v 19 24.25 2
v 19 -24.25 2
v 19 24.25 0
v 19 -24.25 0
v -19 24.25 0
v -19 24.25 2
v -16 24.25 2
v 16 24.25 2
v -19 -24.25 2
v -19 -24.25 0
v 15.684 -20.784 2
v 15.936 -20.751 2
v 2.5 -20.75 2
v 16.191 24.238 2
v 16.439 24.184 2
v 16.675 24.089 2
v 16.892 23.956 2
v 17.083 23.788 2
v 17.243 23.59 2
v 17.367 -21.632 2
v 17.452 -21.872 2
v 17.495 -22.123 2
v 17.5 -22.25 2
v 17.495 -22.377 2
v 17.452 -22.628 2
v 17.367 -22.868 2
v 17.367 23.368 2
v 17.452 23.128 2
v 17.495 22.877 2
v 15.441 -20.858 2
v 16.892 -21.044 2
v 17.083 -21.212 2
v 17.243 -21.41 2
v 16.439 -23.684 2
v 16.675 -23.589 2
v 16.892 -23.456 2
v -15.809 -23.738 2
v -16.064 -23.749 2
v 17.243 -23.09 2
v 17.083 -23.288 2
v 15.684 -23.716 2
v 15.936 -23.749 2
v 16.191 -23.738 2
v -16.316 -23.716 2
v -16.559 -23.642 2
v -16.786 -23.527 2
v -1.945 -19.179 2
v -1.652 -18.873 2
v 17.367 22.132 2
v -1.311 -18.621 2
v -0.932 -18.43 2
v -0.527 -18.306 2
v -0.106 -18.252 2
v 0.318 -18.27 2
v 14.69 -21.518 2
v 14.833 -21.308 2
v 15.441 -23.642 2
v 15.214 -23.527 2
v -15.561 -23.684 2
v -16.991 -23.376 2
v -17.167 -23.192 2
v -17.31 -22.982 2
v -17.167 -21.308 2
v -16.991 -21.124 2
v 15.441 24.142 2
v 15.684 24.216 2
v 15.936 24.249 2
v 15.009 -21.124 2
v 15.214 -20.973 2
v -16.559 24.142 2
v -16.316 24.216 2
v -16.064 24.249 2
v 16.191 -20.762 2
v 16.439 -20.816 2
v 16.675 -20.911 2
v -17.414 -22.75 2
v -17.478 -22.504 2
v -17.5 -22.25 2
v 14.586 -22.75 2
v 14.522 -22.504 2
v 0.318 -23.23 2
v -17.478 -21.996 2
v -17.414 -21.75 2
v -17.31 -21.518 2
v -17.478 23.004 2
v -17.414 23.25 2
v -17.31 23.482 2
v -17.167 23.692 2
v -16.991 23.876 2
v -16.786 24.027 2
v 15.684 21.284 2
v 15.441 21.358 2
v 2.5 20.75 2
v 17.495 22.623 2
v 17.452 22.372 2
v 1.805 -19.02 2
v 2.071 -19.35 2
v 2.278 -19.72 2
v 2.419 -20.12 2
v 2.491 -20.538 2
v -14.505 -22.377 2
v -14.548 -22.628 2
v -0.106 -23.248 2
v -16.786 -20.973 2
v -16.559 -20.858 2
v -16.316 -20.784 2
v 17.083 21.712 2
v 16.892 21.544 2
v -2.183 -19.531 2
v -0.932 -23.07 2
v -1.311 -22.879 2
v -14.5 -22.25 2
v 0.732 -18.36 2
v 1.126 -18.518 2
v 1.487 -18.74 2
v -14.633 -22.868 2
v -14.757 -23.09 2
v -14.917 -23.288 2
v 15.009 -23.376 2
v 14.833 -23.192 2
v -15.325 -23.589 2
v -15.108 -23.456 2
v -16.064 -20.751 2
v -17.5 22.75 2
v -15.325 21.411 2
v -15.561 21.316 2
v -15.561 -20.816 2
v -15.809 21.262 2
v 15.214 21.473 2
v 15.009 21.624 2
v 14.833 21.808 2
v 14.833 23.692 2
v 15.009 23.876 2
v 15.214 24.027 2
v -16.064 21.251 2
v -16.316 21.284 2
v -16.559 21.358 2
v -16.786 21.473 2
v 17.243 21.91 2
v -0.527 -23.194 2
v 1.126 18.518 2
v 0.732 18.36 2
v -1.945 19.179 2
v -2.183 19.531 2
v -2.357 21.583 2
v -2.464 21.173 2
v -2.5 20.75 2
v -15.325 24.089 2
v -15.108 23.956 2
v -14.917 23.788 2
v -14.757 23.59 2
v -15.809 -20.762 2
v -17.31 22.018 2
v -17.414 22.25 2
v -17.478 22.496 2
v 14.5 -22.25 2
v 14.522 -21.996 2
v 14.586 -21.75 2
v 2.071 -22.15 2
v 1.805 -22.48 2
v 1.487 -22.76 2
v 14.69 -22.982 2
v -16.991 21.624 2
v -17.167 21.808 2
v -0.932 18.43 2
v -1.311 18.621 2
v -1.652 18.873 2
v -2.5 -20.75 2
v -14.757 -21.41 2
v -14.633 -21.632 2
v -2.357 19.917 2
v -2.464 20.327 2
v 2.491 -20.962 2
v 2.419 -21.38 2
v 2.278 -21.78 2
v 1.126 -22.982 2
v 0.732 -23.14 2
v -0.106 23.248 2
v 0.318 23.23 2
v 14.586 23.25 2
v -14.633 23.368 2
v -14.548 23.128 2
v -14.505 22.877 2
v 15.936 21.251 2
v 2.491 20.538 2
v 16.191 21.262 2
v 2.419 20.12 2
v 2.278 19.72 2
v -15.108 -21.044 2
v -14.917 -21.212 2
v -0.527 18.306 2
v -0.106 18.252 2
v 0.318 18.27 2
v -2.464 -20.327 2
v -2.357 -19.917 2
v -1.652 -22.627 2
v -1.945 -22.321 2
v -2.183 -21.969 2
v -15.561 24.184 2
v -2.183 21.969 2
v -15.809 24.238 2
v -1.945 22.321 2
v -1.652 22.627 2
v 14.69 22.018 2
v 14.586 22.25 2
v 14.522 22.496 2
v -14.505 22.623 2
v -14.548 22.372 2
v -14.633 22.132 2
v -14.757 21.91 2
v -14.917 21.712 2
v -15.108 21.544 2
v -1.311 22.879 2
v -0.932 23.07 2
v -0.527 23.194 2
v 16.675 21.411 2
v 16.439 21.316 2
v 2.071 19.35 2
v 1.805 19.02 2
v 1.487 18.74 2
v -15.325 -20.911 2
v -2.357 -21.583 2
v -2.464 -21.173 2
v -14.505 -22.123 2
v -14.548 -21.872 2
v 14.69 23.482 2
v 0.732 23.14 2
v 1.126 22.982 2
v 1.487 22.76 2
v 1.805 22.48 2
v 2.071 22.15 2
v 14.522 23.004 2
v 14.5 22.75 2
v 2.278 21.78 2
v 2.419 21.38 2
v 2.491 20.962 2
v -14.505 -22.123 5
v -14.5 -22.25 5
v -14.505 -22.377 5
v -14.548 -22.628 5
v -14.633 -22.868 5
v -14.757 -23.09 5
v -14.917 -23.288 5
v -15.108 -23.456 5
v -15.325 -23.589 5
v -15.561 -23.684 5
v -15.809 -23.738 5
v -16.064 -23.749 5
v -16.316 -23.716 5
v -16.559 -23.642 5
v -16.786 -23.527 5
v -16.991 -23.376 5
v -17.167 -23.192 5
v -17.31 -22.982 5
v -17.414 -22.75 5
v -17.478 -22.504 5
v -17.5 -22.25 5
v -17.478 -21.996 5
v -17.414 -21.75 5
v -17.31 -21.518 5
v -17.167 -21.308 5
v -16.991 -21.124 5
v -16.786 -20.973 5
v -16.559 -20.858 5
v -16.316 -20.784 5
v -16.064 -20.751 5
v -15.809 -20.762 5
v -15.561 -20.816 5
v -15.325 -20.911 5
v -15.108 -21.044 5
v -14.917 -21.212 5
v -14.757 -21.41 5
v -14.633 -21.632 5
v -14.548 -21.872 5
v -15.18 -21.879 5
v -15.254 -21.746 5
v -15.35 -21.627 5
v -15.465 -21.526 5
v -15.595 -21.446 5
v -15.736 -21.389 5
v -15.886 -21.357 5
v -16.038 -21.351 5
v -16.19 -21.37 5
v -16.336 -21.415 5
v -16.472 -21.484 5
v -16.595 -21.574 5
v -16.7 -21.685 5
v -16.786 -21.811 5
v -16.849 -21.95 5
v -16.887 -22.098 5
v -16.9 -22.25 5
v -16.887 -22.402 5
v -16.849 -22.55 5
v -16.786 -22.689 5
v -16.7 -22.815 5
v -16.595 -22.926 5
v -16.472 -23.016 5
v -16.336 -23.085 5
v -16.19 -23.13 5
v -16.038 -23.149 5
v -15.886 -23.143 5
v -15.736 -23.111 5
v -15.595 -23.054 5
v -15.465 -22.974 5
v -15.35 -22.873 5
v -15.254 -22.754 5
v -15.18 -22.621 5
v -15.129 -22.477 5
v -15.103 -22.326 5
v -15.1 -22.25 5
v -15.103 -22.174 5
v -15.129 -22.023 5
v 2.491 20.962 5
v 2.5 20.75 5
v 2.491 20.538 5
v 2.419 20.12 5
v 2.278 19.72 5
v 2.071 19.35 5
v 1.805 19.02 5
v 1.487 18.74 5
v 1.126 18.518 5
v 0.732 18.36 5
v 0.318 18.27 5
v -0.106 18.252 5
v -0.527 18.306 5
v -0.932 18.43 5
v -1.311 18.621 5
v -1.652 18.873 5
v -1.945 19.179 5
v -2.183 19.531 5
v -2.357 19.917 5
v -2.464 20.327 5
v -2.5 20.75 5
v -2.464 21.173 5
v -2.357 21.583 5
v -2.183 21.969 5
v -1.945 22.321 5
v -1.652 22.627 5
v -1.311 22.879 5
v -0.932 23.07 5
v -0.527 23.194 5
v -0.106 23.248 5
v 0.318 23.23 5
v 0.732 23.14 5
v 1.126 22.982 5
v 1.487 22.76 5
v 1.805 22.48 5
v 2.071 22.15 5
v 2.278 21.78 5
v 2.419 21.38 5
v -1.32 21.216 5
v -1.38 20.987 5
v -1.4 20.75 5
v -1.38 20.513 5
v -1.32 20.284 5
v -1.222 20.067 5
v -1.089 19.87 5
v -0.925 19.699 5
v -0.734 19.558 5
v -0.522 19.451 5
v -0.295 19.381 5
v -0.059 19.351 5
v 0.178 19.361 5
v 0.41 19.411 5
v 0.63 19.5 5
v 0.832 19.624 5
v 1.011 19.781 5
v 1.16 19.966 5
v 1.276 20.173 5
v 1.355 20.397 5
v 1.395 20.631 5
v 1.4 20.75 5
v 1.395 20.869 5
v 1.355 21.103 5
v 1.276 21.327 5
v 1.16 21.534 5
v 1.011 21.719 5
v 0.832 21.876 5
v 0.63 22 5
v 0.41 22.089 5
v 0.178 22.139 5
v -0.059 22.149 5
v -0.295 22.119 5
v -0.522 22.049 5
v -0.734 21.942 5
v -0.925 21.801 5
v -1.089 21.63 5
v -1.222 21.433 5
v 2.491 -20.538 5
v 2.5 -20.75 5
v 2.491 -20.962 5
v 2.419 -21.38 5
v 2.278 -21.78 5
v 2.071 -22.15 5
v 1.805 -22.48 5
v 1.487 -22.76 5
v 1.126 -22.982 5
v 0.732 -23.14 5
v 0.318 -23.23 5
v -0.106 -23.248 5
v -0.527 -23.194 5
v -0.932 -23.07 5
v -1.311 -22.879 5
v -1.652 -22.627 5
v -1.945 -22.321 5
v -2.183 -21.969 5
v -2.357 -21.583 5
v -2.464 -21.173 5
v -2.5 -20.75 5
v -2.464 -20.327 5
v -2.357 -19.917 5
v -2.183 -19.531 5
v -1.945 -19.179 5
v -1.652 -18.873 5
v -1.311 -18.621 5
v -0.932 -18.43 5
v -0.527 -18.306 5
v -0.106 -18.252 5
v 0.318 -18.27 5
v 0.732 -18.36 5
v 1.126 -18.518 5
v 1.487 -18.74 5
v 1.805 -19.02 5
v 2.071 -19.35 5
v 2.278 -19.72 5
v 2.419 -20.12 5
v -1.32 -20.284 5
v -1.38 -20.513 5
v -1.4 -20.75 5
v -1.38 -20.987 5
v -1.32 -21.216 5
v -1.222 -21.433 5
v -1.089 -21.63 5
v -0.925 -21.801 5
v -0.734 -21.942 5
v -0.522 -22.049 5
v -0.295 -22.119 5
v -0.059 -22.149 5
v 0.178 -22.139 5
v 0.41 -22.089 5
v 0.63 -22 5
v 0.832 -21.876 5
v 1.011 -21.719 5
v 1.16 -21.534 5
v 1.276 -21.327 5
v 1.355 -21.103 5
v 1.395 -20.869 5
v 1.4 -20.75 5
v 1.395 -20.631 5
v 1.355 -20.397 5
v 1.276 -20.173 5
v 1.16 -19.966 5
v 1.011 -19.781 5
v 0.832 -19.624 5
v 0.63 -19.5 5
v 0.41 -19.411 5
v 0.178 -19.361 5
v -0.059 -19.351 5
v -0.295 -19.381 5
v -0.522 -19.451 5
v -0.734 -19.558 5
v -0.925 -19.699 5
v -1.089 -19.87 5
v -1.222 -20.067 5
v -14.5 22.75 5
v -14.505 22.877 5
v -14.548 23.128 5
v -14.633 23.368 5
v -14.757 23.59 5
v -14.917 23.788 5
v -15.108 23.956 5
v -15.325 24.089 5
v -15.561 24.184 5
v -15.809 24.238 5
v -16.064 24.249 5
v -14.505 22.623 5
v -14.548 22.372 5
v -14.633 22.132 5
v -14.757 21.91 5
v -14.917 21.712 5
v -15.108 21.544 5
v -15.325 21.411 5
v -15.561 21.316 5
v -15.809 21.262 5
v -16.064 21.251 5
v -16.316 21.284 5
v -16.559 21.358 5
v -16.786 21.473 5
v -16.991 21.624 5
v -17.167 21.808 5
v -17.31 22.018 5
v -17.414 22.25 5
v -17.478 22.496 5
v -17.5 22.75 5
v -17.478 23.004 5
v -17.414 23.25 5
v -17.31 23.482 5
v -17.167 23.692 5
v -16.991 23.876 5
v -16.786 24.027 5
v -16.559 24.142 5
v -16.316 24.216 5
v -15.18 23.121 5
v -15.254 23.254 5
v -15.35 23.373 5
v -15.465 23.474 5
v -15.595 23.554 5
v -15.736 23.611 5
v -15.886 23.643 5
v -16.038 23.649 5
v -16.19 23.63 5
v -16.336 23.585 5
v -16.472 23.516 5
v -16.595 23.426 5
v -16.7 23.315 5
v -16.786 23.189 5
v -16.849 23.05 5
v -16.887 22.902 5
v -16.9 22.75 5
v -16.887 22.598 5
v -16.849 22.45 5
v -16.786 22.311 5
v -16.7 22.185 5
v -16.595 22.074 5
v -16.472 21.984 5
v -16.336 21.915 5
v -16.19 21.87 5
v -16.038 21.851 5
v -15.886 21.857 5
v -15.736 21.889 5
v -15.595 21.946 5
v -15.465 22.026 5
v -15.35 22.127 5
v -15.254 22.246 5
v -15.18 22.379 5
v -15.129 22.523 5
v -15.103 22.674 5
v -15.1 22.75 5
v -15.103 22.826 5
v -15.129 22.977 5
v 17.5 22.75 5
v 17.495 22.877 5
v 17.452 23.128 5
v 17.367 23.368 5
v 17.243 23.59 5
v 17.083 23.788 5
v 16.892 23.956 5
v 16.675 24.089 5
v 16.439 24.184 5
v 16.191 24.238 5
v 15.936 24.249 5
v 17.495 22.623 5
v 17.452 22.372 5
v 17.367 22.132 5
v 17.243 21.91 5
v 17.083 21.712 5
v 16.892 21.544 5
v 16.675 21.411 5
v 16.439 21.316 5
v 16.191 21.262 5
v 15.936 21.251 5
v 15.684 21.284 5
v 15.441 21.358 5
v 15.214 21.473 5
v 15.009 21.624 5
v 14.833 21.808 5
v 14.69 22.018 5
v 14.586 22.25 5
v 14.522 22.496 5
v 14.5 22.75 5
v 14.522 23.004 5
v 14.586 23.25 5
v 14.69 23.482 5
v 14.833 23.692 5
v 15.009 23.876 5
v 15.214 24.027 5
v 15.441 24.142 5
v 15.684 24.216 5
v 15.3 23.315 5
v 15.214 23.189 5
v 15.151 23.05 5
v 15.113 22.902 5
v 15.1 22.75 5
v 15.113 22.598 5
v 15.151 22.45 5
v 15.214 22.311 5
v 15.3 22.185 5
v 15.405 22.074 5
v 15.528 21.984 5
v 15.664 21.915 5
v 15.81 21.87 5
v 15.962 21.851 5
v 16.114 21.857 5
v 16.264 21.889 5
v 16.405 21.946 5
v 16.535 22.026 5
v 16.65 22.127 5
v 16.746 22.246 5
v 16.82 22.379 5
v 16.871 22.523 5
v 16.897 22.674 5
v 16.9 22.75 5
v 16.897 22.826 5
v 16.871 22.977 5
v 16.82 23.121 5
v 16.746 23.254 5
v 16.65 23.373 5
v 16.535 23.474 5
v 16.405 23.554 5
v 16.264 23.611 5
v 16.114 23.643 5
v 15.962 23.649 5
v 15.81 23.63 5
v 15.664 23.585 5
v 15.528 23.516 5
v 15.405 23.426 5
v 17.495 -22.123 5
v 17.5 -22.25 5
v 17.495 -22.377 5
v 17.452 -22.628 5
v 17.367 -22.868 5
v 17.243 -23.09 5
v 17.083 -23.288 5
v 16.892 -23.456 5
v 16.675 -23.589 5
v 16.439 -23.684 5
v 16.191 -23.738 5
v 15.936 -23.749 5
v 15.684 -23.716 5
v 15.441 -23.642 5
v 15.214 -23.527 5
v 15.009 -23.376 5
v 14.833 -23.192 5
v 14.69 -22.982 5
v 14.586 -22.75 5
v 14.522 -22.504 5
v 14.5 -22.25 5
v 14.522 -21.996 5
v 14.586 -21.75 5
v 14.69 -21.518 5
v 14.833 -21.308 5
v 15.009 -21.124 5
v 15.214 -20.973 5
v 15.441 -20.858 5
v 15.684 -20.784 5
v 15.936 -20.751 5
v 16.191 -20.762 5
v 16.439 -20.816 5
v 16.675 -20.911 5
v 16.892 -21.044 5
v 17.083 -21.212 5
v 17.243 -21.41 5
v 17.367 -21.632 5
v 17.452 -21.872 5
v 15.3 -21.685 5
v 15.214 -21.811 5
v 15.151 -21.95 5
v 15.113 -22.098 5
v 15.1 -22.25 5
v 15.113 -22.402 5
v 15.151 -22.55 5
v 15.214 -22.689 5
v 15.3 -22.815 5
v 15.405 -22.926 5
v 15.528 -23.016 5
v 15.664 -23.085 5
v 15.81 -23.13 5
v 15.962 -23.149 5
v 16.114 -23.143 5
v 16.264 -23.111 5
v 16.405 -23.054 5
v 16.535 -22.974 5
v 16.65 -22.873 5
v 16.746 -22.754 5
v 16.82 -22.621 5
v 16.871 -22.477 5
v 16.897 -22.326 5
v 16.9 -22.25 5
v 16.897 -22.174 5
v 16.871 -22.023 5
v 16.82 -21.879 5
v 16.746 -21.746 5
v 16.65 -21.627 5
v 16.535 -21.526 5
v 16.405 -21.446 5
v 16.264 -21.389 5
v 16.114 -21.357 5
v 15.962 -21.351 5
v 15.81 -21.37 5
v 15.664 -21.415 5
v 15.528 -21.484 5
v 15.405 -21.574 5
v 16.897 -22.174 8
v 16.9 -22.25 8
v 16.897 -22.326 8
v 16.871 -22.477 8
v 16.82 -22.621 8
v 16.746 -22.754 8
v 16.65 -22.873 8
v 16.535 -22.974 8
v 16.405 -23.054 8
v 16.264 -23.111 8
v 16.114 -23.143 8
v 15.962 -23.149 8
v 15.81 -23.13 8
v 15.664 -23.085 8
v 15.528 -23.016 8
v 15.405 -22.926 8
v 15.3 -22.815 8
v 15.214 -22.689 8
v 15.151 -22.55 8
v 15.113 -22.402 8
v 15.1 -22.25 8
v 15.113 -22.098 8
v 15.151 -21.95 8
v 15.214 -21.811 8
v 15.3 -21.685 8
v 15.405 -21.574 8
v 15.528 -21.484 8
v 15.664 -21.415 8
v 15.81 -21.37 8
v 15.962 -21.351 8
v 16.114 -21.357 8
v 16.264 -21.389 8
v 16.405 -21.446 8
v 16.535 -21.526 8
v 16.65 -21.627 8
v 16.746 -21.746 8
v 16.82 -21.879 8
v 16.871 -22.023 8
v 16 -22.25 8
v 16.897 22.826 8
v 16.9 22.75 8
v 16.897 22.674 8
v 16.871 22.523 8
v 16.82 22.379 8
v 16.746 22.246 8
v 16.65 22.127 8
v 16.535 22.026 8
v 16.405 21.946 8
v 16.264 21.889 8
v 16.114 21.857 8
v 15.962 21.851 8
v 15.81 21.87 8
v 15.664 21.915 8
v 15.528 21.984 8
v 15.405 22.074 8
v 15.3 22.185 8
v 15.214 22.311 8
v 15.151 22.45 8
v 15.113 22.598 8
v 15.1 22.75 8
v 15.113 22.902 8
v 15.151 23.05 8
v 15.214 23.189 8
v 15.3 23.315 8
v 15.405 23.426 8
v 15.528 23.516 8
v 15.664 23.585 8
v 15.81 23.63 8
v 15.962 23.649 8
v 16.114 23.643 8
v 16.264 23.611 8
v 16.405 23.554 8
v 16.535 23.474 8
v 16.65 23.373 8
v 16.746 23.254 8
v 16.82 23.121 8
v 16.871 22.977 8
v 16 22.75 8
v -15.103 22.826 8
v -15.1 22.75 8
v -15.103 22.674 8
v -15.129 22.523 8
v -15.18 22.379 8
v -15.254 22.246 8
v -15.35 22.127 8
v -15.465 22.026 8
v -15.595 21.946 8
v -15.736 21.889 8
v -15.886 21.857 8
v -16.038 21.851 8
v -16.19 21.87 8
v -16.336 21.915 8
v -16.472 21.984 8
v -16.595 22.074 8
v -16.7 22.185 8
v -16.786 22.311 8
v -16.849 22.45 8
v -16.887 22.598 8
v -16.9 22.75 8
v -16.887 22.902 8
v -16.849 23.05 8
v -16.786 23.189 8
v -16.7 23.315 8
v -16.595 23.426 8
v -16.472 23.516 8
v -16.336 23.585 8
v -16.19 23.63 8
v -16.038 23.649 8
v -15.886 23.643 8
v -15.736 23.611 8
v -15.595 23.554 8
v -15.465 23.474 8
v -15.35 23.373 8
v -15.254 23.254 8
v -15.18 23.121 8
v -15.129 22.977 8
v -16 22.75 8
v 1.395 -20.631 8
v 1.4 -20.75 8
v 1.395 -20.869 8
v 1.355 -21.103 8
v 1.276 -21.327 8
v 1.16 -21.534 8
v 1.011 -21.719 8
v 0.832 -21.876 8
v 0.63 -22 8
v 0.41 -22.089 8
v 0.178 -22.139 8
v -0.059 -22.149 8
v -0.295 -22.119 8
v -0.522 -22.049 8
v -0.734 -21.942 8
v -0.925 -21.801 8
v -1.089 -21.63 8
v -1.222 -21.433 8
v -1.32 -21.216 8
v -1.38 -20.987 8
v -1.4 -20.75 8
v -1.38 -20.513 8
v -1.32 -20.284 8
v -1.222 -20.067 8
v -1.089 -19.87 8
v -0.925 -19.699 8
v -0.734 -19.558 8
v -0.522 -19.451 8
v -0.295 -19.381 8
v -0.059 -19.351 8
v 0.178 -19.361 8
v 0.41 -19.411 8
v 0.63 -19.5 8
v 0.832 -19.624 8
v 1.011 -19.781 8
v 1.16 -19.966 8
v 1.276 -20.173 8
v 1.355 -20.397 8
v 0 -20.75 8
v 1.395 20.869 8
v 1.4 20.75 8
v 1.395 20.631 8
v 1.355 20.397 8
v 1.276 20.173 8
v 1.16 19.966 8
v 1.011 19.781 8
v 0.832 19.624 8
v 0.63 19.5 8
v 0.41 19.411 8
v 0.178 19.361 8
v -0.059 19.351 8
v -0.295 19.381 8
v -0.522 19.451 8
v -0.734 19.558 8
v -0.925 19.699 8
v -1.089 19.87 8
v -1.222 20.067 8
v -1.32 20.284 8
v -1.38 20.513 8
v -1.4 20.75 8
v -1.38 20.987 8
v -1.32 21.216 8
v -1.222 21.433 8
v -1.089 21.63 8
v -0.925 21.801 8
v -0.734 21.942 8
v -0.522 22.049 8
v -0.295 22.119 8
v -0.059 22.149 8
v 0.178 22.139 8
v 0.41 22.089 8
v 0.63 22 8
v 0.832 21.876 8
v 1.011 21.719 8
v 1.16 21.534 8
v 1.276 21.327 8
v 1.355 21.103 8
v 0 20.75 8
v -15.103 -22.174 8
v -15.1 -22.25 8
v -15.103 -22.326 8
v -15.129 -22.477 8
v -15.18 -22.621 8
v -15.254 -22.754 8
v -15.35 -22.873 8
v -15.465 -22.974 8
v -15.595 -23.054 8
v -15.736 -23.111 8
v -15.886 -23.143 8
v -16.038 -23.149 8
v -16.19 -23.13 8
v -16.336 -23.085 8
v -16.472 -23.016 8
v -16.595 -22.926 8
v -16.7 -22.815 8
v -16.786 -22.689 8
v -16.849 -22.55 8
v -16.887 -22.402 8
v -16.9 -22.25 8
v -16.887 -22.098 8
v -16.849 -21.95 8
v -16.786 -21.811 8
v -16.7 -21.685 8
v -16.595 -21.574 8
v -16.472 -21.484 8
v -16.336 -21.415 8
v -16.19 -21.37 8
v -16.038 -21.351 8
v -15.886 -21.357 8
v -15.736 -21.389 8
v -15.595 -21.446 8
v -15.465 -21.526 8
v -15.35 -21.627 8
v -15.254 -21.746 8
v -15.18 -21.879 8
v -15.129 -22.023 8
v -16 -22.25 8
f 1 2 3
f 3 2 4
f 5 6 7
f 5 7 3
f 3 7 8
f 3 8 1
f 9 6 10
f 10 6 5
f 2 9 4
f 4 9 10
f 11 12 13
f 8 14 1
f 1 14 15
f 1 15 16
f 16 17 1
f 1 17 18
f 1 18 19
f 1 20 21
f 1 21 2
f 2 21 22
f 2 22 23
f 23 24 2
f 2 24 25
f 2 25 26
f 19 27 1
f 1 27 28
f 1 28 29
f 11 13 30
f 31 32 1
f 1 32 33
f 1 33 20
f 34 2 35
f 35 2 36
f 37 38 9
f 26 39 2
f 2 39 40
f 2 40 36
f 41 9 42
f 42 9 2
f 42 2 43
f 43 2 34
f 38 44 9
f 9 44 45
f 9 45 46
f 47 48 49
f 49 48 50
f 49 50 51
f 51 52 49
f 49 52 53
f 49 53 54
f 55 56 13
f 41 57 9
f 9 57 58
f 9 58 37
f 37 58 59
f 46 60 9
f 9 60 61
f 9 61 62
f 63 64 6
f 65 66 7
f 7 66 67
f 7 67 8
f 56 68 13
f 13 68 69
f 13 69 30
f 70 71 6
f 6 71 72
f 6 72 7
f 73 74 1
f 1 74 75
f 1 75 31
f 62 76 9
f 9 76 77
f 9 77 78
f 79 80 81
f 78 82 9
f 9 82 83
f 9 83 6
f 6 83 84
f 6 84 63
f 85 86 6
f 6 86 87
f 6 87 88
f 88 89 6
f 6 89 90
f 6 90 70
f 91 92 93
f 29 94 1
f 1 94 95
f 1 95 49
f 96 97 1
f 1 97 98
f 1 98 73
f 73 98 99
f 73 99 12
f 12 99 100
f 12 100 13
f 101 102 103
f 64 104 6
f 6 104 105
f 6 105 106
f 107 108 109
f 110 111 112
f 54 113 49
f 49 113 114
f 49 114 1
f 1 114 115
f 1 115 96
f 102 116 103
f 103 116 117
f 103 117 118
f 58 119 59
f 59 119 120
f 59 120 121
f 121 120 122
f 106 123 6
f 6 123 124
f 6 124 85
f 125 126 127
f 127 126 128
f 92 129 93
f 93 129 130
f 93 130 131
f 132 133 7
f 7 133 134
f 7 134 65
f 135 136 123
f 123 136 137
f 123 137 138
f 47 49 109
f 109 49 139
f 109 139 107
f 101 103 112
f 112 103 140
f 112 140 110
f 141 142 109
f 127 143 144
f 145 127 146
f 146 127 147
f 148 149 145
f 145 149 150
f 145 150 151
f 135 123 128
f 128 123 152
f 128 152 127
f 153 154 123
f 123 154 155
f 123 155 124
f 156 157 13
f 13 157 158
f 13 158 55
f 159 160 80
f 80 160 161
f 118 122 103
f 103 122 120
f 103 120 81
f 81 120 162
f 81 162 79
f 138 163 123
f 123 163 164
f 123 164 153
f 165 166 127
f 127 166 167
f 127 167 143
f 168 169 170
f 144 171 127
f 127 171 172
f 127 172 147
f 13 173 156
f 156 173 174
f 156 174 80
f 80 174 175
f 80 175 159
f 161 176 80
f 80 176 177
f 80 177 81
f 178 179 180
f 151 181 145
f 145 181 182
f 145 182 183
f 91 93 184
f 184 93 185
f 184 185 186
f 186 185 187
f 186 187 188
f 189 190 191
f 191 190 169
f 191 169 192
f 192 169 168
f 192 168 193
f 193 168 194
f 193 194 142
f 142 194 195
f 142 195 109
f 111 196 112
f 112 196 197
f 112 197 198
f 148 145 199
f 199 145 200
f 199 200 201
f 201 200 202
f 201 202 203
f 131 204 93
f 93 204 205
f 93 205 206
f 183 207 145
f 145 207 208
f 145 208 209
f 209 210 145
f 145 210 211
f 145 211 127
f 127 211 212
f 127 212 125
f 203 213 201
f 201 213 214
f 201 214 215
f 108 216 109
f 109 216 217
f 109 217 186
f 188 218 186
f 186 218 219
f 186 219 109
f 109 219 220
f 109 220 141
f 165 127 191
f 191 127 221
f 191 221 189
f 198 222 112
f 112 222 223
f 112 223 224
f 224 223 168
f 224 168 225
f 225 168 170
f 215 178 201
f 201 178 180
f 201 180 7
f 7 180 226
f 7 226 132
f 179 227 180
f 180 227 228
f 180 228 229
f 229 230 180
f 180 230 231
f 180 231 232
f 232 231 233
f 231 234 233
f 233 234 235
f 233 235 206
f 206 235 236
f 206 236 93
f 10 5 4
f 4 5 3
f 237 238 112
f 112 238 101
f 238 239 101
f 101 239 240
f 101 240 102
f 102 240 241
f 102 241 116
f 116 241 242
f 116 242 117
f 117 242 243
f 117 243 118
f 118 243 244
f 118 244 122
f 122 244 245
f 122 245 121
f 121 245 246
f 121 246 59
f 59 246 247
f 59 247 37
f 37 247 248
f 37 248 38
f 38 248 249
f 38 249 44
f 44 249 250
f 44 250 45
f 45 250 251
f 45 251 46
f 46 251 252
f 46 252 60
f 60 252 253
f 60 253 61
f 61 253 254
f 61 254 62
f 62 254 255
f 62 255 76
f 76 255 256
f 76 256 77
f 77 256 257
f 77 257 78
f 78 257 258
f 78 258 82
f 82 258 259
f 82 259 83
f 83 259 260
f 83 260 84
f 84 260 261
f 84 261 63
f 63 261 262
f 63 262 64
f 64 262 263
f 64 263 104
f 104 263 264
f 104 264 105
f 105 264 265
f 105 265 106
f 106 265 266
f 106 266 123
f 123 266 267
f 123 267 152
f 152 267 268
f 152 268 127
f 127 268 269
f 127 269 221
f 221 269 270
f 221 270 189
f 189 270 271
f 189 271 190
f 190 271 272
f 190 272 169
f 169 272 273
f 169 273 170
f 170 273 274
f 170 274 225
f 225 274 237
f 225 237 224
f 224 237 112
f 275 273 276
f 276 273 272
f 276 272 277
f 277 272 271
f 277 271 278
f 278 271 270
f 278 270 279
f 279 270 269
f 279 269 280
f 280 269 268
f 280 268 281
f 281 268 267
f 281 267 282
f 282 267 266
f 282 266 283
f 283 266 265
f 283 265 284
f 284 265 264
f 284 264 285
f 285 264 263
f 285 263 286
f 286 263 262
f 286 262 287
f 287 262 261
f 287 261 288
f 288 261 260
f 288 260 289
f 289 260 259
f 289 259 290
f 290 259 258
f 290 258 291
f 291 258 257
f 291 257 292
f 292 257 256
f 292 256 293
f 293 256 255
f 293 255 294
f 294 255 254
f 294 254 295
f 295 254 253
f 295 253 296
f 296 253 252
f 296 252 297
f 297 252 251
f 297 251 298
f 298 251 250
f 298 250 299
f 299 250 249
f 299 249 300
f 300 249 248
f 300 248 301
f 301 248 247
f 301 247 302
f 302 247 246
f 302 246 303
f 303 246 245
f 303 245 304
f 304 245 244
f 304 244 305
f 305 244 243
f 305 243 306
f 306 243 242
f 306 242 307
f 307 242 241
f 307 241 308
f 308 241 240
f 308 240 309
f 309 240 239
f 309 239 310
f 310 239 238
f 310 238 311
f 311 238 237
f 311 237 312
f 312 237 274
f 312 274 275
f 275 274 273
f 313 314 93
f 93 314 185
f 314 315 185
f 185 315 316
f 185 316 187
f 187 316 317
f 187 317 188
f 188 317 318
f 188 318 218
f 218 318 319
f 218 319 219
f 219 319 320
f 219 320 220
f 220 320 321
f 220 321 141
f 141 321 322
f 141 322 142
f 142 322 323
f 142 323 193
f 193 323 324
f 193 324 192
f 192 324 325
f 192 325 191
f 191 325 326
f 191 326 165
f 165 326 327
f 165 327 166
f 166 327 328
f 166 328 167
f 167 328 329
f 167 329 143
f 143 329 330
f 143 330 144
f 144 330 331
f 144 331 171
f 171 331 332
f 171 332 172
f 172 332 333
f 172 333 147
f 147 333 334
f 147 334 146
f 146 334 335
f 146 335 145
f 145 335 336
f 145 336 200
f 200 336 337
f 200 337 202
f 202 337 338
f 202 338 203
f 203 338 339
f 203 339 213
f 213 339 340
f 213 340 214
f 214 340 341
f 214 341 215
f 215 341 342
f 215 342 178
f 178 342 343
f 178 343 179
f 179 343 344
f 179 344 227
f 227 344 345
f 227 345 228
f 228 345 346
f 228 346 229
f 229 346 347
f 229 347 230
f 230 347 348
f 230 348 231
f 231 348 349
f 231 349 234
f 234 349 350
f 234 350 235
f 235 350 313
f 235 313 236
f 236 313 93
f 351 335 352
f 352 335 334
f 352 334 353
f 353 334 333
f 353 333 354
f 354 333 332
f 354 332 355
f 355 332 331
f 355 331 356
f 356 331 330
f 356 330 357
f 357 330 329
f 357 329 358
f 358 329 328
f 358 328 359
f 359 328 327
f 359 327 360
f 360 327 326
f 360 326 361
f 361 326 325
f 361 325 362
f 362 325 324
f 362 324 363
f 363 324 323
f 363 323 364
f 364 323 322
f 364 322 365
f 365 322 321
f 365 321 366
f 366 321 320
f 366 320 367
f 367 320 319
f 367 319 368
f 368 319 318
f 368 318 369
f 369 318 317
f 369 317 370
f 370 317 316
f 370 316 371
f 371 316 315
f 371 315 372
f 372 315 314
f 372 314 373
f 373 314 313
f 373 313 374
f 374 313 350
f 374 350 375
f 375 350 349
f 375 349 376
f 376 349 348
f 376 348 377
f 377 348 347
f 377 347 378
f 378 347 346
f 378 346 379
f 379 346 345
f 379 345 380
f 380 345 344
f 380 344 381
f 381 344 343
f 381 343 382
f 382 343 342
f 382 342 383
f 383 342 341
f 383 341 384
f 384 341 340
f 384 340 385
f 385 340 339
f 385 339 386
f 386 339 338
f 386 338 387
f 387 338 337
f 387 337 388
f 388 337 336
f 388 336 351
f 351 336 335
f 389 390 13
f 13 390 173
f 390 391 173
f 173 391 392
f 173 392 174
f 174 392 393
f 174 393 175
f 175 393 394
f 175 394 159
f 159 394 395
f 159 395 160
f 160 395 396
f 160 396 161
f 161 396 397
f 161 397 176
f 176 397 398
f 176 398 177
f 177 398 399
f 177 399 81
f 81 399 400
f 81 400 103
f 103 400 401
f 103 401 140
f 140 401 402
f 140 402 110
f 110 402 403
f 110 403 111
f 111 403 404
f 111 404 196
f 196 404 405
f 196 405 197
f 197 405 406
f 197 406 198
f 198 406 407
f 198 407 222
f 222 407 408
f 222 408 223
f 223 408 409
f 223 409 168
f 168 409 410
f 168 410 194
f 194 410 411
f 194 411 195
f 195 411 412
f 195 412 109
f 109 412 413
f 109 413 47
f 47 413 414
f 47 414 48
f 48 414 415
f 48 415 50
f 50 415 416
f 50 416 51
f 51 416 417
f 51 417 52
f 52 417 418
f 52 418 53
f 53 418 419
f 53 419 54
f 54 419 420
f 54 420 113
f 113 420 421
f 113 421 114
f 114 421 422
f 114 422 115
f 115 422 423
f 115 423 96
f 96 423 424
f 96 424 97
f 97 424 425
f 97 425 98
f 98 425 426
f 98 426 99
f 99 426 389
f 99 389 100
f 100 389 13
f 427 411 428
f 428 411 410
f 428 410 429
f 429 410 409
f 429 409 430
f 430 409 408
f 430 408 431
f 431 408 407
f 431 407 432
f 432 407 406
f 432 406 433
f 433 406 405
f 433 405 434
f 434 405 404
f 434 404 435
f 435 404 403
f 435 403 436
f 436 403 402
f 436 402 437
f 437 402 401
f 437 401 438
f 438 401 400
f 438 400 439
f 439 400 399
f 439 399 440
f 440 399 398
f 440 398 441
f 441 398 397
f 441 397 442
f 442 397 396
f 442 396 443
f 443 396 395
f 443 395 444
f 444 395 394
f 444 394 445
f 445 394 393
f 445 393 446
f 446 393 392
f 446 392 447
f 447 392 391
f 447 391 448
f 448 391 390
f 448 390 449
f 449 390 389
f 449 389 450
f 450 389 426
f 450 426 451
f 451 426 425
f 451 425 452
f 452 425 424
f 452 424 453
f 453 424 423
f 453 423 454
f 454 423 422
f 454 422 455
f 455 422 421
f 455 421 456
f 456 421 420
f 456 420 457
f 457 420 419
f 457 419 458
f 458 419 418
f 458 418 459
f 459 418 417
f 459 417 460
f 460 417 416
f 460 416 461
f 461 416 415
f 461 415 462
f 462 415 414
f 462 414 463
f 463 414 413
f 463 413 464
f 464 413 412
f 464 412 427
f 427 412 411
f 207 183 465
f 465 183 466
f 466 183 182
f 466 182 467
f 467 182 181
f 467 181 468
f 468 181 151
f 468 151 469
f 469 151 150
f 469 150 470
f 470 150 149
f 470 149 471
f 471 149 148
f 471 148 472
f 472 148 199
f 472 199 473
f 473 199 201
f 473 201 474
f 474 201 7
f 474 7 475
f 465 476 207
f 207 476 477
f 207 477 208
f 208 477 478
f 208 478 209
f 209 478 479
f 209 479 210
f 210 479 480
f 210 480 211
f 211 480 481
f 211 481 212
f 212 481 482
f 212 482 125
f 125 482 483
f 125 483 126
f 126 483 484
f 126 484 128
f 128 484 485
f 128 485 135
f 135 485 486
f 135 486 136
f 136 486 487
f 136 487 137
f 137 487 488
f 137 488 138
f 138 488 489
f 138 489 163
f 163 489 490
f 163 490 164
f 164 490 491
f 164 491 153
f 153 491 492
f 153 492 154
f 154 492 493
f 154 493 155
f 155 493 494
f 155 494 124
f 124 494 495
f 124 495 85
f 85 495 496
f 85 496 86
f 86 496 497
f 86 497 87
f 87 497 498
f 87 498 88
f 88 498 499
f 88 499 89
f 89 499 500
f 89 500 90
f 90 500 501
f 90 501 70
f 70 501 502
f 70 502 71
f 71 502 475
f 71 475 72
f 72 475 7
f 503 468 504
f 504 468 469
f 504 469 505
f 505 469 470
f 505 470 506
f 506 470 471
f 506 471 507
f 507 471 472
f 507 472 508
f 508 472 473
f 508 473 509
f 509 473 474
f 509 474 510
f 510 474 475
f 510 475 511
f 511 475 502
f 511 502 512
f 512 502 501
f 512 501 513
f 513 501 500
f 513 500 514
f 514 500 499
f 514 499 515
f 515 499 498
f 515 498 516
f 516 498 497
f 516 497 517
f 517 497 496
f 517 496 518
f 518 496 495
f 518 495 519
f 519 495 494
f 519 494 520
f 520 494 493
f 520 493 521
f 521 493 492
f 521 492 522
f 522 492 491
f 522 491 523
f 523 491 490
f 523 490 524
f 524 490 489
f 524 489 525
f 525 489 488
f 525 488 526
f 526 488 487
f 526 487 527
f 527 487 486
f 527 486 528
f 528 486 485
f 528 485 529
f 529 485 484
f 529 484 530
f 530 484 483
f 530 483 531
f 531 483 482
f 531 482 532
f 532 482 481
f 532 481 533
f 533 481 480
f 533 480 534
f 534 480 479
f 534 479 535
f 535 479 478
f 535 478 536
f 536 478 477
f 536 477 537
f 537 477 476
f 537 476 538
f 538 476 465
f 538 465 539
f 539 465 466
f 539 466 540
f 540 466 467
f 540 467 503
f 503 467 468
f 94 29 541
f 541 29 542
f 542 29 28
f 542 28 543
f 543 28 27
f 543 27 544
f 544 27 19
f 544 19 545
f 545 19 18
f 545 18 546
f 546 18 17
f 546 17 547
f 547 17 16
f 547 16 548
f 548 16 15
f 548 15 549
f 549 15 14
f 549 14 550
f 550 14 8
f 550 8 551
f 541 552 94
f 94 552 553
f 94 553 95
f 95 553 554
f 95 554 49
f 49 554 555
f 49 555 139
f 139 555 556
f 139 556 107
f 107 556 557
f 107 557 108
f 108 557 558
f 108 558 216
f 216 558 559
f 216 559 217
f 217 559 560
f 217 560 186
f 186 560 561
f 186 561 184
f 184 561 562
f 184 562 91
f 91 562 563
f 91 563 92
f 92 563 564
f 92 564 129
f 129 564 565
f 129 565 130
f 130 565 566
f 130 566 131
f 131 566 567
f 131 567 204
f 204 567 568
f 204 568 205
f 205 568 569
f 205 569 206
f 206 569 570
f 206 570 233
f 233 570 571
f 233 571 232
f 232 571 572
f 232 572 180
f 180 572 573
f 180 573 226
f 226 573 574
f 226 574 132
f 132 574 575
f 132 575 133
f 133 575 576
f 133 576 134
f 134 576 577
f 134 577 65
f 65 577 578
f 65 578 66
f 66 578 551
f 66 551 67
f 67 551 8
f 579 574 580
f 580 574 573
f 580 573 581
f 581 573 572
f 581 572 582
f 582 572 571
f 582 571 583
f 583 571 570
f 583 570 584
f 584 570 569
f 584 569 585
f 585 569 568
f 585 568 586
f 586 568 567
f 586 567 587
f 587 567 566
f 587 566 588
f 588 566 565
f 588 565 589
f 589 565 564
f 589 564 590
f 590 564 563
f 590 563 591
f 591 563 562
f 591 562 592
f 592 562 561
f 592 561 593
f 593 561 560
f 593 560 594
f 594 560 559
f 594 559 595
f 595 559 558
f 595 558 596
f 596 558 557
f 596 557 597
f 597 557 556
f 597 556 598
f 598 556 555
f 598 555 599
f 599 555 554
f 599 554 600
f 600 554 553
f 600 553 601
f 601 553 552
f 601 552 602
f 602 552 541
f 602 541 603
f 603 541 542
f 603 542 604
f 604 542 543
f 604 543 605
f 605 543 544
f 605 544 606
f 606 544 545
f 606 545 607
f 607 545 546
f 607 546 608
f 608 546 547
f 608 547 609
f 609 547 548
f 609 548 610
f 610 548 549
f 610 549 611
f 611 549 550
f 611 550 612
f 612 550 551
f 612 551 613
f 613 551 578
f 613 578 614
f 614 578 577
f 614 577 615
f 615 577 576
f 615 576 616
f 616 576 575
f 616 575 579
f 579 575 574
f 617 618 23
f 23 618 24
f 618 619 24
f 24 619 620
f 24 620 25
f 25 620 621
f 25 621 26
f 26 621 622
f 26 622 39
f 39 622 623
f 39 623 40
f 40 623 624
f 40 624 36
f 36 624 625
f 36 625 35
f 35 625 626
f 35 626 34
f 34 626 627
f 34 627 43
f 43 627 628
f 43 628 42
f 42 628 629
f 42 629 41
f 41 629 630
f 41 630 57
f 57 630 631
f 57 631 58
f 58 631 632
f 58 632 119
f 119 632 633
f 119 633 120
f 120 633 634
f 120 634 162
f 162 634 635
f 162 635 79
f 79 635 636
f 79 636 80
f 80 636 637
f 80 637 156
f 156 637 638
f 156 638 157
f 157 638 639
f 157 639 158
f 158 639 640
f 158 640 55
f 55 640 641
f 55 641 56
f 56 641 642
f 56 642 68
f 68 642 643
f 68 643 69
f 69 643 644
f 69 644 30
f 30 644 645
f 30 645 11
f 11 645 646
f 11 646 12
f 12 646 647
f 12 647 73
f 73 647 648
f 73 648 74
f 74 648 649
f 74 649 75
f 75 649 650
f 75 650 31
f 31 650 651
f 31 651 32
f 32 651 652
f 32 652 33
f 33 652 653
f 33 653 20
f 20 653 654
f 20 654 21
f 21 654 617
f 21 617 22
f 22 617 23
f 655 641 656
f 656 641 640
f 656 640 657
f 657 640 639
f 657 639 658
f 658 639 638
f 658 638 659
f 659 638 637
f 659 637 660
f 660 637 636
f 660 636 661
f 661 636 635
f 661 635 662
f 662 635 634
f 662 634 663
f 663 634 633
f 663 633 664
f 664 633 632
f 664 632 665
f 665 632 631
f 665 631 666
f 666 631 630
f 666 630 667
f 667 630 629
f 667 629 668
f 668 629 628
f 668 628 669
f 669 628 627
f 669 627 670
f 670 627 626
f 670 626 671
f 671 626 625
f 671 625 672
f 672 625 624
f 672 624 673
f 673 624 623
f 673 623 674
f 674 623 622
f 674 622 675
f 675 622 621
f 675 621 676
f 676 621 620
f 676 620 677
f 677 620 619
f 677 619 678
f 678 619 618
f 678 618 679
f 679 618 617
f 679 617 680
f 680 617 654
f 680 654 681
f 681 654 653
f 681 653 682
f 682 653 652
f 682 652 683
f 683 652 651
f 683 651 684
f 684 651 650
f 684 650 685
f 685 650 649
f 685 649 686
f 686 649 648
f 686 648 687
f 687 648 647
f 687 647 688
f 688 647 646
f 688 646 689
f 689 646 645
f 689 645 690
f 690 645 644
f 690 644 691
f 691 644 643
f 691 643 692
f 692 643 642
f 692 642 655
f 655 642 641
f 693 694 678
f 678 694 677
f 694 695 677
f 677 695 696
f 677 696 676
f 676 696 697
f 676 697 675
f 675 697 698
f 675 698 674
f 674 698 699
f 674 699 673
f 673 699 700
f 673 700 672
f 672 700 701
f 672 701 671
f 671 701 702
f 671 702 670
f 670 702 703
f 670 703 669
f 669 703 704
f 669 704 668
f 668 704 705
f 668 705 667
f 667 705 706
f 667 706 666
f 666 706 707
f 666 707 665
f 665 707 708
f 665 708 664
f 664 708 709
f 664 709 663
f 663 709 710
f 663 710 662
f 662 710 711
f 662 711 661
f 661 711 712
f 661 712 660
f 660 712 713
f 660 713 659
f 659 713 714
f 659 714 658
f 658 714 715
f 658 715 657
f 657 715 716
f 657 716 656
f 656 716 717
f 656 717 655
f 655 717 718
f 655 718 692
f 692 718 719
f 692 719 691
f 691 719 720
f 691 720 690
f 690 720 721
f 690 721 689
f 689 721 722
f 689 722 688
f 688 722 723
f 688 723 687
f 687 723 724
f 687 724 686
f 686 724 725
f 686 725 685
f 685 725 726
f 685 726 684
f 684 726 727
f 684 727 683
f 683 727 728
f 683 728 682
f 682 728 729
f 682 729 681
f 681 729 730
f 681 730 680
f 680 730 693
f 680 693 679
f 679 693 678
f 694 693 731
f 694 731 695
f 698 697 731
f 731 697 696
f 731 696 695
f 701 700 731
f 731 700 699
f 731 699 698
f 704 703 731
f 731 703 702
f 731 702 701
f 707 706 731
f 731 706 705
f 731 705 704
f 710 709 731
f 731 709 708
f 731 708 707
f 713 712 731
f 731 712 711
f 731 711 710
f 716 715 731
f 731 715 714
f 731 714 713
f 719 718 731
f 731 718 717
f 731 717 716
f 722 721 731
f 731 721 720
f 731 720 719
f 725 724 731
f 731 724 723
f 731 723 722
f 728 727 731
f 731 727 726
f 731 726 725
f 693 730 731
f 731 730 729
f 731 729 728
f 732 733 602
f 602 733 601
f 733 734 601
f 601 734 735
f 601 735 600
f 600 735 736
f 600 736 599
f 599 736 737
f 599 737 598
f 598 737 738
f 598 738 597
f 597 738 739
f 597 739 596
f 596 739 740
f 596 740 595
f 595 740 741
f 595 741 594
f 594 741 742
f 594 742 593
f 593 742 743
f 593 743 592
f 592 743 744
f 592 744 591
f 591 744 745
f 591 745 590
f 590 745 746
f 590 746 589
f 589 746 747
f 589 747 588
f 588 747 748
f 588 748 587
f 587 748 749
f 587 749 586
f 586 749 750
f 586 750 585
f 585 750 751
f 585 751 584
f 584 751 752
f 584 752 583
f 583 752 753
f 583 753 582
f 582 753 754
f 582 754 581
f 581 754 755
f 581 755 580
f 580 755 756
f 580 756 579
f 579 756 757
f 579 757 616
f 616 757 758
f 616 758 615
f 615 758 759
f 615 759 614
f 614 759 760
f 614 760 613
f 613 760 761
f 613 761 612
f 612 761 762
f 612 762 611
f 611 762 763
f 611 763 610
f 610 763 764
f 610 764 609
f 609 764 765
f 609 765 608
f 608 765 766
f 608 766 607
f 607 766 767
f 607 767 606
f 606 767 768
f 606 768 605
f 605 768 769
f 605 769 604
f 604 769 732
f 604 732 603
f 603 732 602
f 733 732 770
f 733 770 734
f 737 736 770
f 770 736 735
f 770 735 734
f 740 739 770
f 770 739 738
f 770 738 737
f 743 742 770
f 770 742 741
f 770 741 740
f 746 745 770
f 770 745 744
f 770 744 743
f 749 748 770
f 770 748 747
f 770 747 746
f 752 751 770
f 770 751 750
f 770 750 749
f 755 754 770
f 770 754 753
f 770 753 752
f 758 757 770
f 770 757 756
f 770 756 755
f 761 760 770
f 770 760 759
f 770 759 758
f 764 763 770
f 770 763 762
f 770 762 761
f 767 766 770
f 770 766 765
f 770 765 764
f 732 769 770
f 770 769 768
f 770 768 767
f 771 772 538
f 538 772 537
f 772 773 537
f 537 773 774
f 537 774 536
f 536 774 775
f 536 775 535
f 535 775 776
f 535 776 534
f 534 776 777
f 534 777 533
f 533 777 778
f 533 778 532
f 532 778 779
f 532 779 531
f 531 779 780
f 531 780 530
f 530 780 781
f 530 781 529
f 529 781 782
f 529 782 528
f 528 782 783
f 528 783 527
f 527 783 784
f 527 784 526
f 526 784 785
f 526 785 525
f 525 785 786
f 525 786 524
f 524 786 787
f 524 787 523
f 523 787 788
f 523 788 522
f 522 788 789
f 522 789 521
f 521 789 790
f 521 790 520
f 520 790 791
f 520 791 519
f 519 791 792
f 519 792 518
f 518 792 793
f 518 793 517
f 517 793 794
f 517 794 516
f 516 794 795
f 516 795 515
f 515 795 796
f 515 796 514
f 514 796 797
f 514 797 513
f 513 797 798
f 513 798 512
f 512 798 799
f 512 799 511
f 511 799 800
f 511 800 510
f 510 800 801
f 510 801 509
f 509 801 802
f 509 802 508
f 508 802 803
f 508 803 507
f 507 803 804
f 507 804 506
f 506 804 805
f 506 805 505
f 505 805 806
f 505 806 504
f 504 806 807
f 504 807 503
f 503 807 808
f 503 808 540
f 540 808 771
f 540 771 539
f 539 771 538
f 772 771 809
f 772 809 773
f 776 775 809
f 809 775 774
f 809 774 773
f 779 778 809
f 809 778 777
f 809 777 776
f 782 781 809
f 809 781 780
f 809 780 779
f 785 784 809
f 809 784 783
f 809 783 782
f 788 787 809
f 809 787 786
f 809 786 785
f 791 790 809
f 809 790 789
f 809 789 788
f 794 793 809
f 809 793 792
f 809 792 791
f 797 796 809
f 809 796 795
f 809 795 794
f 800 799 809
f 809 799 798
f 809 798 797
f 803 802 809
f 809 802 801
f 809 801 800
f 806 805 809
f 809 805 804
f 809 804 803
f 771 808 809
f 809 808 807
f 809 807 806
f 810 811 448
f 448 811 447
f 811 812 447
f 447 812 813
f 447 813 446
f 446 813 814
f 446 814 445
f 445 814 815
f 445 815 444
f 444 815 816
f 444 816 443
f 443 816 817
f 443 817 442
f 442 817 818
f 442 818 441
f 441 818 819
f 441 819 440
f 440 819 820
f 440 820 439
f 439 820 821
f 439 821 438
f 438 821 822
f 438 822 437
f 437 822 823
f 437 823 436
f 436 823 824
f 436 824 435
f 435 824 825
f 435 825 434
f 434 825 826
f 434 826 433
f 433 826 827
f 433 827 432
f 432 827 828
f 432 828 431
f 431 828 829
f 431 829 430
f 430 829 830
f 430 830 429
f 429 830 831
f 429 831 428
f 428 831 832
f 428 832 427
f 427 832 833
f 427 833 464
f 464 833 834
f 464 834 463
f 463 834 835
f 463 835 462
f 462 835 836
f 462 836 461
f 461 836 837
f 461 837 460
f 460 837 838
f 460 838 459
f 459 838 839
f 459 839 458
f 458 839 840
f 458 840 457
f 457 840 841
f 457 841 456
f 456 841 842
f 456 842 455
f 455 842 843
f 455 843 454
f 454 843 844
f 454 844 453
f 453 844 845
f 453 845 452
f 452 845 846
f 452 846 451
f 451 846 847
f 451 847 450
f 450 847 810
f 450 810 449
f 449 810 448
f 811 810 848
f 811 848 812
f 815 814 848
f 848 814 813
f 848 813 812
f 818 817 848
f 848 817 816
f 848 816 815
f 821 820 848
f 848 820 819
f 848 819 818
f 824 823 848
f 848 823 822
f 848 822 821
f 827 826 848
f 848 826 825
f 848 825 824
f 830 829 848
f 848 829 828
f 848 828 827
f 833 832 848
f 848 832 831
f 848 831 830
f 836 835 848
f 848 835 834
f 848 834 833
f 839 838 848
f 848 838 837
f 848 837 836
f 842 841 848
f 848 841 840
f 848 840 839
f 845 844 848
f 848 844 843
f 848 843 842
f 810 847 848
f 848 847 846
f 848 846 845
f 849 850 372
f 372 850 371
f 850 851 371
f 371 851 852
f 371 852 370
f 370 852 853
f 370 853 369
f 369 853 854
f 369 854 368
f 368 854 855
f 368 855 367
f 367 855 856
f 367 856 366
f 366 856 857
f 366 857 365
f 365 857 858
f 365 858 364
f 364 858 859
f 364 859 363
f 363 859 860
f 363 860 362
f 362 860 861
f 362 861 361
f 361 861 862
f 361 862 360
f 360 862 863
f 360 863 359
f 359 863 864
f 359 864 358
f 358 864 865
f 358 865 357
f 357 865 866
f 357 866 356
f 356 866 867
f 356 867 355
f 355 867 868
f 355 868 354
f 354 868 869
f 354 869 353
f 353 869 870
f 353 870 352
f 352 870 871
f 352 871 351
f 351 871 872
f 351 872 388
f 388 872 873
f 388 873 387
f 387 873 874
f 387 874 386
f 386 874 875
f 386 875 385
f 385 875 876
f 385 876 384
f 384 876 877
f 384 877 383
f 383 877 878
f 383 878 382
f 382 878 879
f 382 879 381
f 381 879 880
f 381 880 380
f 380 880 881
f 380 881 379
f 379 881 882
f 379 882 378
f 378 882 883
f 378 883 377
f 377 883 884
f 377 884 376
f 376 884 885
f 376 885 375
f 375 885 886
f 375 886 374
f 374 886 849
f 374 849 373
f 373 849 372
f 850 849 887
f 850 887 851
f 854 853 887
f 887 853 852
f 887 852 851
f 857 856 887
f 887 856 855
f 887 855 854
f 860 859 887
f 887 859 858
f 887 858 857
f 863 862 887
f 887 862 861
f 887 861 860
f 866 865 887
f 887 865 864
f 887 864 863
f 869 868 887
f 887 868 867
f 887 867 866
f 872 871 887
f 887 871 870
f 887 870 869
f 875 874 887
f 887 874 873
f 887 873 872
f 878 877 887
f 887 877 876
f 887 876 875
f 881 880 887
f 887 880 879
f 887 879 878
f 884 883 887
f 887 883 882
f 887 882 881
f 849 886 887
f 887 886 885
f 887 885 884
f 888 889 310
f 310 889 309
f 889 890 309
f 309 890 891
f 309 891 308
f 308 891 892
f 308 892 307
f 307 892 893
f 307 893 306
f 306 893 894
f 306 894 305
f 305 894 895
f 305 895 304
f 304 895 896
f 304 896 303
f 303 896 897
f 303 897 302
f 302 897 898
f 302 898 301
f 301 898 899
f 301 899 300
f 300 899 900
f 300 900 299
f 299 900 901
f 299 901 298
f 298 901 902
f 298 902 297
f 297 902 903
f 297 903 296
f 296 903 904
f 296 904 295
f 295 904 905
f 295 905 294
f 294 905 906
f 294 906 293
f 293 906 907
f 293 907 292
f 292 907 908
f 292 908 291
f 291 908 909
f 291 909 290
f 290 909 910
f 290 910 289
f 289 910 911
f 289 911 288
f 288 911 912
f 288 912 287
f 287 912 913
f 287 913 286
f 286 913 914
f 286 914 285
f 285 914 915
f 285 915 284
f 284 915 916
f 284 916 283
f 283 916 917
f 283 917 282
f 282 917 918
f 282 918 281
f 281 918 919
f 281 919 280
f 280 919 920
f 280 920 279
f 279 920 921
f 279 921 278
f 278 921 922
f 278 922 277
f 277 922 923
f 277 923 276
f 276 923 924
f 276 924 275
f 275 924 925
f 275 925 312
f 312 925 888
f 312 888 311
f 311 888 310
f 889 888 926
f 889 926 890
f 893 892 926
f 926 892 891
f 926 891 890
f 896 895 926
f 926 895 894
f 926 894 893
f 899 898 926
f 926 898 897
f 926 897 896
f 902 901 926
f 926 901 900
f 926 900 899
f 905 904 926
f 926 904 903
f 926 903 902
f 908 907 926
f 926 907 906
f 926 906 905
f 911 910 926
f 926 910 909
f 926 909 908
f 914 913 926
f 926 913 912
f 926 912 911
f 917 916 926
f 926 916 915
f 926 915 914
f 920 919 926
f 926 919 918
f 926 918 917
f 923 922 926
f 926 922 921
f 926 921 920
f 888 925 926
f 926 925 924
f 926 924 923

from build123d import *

# Parameters (mm, degrees)
SKIZZE1_W                       = 48.5
SKIZZE1_H                       = 38
AUFSATZ_LINEAR_AUSTRAGEN1_DEPTH = 2
SKIZZE2_R                       = 1.5
SKIZZE2_R_2                     = 2.5
AUFSATZ_LINEAR_AUSTRAGEN2_DEPTH = 3
SKIZZE3_R                       = 1.4
SKIZZE3_R_2                     = 0.9
AUFSATZ_LINEAR_AUSTRAGEN3_DEPTH = 3


with BuildPart() as part:
    # Skizze1 → Aufsatz-Linear austragen1 (new body)
    with BuildSketch(Plane(origin=(0, 0, 0), x_dir=(0, 1, 0), z_dir=(0, 0, 1))):
        Rectangle(SKIZZE1_W, SKIZZE1_H)
    extrude(amount=AUFSATZ_LINEAR_AUSTRAGEN1_DEPTH)

    # Skizze2 → Aufsatz-Linear austragen2 (add)
    with BuildSketch(Plane.XY.offset(2)):
        with Locations((-16, -22.25)):
            Circle(SKIZZE2_R)
        with Locations((16, -22.25)):
            Circle(SKIZZE2_R)
        with Locations(Location((16, 22.75, 0), (0, 0, 90))):
            Circle(SKIZZE2_R)
        with Locations(Location((-16, 22.75, 0), (0, 0, 90))):
            Circle(SKIZZE2_R)
        with Locations((0, 20.75)):
            Circle(SKIZZE2_R_2)
        with Locations((0, -20.75)):
            Circle(SKIZZE2_R_2)
    extrude(amount=AUFSATZ_LINEAR_AUSTRAGEN2_DEPTH)

    # Skizze3 → Aufsatz-Linear austragen3 (add)
    with BuildSketch(Plane.XY.offset(5)):
        with Locations((0, 20.75)):
            Circle(SKIZZE3_R)
        with Locations((16, 22.75)):
            Circle(SKIZZE3_R_2)
        with Locations((-16, 22.75)):
            Circle(SKIZZE3_R_2)
        with Locations((0, -20.75)):
            Circle(SKIZZE3_R)
        with Locations((-16, -22.25)):
            Circle(SKIZZE3_R_2)
        with Locations((16, -22.25)):
            Circle(SKIZZE3_R_2)
    extrude(amount=AUFSATZ_LINEAR_AUSTRAGEN3_DEPTH)


solid = part.part
